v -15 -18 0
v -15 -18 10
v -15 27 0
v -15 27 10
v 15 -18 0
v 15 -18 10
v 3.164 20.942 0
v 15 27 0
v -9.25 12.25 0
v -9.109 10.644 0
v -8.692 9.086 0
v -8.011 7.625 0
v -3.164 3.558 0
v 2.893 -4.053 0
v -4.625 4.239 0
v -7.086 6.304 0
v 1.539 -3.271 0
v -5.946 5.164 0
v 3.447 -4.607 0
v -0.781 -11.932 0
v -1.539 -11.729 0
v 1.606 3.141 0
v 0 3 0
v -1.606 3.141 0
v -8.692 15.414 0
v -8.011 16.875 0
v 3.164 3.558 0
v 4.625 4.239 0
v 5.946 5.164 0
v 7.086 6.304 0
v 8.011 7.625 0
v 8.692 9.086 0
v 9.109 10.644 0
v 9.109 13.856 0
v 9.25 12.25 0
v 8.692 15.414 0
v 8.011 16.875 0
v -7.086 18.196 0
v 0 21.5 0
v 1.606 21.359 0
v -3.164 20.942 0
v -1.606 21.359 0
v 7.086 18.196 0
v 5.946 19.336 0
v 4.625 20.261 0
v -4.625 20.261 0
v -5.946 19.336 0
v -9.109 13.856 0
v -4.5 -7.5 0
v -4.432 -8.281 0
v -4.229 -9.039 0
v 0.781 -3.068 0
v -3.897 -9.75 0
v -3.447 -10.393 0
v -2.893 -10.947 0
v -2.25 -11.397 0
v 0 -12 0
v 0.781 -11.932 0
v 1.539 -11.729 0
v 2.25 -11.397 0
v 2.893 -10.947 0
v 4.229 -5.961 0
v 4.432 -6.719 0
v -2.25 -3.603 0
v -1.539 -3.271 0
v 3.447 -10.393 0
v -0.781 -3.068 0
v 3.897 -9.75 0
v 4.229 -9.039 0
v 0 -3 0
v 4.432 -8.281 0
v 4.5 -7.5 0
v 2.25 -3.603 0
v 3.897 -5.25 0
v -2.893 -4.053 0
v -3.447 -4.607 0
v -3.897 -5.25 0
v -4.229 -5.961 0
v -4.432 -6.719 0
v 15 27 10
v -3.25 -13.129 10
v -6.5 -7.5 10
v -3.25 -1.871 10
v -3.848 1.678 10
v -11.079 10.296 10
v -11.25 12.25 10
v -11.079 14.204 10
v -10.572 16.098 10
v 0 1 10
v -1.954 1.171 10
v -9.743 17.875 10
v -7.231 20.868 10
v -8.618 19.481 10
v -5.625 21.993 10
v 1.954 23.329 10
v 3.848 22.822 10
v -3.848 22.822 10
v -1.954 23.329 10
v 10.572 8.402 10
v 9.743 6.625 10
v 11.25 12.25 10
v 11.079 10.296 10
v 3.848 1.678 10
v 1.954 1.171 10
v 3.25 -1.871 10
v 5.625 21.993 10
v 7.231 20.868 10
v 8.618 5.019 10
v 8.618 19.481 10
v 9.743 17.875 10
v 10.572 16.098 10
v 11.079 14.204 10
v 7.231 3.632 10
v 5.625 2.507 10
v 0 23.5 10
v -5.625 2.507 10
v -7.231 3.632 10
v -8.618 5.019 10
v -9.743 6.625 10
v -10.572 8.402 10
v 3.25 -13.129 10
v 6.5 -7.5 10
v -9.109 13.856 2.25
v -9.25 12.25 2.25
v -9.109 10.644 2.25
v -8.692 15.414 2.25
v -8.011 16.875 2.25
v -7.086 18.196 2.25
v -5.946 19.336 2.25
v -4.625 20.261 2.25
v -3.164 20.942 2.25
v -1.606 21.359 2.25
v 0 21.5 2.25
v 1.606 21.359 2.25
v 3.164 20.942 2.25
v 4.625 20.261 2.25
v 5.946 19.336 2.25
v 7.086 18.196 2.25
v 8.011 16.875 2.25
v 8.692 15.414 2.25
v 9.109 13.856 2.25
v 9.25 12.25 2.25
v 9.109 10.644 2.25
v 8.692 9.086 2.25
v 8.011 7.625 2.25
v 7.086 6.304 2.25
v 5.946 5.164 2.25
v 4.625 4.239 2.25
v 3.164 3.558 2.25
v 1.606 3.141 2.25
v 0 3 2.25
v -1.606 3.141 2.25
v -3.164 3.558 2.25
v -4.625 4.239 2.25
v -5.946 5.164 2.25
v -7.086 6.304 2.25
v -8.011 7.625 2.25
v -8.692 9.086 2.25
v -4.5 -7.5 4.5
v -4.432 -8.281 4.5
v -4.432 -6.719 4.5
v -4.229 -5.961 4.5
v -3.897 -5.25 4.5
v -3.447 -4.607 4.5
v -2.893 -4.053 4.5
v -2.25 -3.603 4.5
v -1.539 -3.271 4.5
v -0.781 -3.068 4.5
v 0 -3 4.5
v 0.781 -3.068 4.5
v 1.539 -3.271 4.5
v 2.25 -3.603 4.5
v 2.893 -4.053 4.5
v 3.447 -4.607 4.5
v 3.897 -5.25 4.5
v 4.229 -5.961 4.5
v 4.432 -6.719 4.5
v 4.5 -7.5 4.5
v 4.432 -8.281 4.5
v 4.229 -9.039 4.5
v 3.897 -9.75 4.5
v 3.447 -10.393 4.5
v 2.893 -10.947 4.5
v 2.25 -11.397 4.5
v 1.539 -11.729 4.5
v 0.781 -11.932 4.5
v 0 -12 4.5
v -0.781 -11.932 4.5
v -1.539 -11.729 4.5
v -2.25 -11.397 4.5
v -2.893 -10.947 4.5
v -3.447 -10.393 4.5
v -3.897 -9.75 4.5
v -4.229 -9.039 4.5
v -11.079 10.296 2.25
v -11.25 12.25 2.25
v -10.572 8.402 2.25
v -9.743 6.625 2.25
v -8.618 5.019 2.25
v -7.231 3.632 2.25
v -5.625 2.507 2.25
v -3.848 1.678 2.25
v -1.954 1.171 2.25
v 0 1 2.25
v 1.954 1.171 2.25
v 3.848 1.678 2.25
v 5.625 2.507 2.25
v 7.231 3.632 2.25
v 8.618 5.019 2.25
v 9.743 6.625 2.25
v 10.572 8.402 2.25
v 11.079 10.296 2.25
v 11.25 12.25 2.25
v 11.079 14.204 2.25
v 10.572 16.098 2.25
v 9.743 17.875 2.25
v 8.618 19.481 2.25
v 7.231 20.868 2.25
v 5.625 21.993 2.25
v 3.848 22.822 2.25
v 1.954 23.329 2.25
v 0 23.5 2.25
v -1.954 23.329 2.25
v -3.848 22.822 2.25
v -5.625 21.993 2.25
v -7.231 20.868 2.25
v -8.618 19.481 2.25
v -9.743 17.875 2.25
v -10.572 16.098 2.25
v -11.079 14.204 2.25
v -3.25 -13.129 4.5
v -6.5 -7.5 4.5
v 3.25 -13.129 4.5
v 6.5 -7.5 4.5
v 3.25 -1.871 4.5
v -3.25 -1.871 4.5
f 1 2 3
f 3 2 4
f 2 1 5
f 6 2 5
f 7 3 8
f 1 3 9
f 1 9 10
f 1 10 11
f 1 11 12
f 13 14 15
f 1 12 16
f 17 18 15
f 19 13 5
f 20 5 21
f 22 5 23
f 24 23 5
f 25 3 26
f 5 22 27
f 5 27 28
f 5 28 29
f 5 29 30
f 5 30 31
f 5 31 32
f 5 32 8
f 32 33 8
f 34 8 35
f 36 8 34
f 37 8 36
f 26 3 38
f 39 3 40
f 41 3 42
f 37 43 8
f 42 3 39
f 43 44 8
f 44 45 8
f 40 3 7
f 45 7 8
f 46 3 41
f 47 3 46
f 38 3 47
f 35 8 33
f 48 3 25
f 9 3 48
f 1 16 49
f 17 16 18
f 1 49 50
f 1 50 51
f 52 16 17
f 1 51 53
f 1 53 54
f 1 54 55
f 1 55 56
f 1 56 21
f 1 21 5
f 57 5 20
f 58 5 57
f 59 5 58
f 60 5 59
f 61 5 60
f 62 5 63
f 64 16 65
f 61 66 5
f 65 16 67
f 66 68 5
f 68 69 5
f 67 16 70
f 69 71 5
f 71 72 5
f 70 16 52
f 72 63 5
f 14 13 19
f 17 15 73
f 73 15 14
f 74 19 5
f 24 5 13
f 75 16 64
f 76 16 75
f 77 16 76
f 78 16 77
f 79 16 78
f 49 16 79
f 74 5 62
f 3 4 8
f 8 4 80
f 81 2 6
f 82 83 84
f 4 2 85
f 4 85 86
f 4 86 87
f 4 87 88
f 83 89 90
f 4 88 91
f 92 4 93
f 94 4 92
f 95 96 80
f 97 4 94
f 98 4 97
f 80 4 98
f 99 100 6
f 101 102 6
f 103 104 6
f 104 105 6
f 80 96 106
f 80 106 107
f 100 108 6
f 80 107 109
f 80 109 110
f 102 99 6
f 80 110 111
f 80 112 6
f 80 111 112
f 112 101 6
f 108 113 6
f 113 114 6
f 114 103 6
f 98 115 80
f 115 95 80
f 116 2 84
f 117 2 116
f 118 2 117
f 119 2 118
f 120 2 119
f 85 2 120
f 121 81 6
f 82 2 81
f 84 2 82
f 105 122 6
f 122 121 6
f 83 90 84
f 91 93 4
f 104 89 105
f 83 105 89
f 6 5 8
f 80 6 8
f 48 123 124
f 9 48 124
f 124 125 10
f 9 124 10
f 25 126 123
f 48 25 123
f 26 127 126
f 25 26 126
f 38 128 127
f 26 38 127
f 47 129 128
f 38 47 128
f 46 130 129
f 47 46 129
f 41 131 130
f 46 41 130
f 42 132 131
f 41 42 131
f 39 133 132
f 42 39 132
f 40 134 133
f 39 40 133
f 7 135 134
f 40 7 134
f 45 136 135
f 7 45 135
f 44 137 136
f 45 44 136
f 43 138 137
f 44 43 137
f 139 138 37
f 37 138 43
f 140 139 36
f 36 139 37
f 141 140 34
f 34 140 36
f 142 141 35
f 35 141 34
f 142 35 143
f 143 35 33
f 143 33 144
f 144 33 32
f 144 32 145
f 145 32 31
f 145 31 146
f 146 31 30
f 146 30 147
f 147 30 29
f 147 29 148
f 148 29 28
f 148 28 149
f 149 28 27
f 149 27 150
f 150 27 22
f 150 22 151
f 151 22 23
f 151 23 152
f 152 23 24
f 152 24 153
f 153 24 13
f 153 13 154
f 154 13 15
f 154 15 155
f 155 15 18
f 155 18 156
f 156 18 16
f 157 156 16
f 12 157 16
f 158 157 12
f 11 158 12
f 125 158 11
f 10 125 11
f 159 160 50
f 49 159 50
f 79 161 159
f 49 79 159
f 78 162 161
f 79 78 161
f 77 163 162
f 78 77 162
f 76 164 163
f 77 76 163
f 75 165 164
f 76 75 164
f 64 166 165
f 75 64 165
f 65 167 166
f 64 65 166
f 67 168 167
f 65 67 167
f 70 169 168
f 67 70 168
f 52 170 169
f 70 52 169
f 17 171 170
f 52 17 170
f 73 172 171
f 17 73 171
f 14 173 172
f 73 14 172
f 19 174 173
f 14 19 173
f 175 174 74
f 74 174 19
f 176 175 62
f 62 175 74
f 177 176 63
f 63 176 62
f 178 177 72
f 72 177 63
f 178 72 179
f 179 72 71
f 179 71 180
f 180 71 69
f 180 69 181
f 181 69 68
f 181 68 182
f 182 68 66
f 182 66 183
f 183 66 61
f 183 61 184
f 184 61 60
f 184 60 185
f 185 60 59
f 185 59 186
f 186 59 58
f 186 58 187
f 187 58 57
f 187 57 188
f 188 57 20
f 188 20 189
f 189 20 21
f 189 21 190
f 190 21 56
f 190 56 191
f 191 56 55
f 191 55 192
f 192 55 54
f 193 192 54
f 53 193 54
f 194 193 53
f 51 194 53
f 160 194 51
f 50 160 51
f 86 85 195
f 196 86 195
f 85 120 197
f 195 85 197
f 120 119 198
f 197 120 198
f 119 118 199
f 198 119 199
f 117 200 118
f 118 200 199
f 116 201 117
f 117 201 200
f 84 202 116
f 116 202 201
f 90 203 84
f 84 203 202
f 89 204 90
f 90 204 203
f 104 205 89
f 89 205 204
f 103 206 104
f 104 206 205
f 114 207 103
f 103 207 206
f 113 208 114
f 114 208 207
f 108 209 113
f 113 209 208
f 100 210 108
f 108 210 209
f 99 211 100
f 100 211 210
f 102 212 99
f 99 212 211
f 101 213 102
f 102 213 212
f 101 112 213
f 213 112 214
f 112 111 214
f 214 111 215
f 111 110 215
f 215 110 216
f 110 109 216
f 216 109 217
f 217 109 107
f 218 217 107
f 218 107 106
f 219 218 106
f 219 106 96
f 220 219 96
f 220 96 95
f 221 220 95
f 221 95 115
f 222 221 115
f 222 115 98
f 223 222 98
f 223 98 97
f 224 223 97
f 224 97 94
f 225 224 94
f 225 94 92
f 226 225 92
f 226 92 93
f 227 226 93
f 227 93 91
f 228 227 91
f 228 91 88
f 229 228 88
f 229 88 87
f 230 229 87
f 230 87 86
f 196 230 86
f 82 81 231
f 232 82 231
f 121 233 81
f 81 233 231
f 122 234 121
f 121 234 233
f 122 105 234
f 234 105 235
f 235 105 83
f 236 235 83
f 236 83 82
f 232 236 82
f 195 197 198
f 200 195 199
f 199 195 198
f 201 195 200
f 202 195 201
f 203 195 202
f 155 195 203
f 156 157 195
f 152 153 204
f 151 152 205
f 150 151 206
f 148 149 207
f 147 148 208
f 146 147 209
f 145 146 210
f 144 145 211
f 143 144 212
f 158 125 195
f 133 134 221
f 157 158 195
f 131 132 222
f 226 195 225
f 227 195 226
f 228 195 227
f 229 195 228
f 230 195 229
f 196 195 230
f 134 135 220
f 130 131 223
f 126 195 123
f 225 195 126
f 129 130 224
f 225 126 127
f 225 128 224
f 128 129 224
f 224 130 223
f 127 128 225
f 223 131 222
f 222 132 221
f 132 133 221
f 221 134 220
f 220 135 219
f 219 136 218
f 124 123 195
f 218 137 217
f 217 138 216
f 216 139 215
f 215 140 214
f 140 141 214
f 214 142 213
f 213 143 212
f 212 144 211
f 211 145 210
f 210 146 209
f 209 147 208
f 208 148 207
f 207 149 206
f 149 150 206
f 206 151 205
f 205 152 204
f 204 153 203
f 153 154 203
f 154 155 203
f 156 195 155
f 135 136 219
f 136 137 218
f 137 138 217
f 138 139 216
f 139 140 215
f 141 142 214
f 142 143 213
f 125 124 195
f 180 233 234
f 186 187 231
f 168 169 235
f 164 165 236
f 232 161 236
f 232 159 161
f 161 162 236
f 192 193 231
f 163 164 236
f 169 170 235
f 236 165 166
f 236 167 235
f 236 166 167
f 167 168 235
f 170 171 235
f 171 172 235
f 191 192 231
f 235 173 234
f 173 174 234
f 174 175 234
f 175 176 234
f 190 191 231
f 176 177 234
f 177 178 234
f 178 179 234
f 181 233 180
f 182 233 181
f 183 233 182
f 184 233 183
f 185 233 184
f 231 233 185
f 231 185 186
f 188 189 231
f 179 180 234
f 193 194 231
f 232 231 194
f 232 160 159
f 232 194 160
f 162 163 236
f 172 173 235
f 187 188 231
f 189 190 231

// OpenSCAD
// file: parameters.scad
//
// Star tracker parameters
// Philippe Chrétien (2012)
// philippe.chretien.gmail.com
//

// Threaded rod
t_rod_out_radius = 4.8; //mm

// Skate bearing 608
bearing_out_radius = 11.25; //mm
bearing_thickness = 7.75; //mm

// M3 bolts
m3_out_radius = 1.5; //mm

// 1/4 nut
nut_1_4_radius = 6.5; //mm
nut_1_4_thickness = 5.5; //mm

// 3/8 nut
bolt_3_8_head_radius = 8.5; //mm
bolt_3_8_head_thickness = 6.0; //mm
// main file
include <parameters.scad>

bloc_length = 45;
bloc_width = 30;
bloc_heigth = 10;
bloc_y = 18;

nut_1_4_shoulder = 2.0;
bearing_shoulder = 2.0;

module bearing_608()
{
	cylinder(h=bearing_thickness,r=bearing_out_radius, $fn=36);
}

module nut_1_4() 
{ 
	linear_extrude(height=nut_1_4_thickness)
		circle(r=nut_1_4_radius, $fn = 6);
}

difference()
{
	translate([-1*bloc_width/2,-1*bloc_y,0])
		cube(size=[bloc_width,bloc_length,bloc_heigth]);

	translate([0,bearing_out_radius+1,bloc_heigth-bearing_thickness])
		bearing_608();

	translate([0,-1*(nut_1_4_radius+1),bloc_heigth-nut_1_4_thickness])
		nut_1_4();

	translate([0,bearing_out_radius+1,0])
		cylinder(h=bloc_heigth,r=bearing_out_radius-bearing_shoulder, $fn=36);

	translate([0,-1*(nut_1_4_radius+1),0])
		cylinder(h=bloc_heigth,r=nut_1_4_radius-nut_1_4_shoulder, $fn=36);
}
